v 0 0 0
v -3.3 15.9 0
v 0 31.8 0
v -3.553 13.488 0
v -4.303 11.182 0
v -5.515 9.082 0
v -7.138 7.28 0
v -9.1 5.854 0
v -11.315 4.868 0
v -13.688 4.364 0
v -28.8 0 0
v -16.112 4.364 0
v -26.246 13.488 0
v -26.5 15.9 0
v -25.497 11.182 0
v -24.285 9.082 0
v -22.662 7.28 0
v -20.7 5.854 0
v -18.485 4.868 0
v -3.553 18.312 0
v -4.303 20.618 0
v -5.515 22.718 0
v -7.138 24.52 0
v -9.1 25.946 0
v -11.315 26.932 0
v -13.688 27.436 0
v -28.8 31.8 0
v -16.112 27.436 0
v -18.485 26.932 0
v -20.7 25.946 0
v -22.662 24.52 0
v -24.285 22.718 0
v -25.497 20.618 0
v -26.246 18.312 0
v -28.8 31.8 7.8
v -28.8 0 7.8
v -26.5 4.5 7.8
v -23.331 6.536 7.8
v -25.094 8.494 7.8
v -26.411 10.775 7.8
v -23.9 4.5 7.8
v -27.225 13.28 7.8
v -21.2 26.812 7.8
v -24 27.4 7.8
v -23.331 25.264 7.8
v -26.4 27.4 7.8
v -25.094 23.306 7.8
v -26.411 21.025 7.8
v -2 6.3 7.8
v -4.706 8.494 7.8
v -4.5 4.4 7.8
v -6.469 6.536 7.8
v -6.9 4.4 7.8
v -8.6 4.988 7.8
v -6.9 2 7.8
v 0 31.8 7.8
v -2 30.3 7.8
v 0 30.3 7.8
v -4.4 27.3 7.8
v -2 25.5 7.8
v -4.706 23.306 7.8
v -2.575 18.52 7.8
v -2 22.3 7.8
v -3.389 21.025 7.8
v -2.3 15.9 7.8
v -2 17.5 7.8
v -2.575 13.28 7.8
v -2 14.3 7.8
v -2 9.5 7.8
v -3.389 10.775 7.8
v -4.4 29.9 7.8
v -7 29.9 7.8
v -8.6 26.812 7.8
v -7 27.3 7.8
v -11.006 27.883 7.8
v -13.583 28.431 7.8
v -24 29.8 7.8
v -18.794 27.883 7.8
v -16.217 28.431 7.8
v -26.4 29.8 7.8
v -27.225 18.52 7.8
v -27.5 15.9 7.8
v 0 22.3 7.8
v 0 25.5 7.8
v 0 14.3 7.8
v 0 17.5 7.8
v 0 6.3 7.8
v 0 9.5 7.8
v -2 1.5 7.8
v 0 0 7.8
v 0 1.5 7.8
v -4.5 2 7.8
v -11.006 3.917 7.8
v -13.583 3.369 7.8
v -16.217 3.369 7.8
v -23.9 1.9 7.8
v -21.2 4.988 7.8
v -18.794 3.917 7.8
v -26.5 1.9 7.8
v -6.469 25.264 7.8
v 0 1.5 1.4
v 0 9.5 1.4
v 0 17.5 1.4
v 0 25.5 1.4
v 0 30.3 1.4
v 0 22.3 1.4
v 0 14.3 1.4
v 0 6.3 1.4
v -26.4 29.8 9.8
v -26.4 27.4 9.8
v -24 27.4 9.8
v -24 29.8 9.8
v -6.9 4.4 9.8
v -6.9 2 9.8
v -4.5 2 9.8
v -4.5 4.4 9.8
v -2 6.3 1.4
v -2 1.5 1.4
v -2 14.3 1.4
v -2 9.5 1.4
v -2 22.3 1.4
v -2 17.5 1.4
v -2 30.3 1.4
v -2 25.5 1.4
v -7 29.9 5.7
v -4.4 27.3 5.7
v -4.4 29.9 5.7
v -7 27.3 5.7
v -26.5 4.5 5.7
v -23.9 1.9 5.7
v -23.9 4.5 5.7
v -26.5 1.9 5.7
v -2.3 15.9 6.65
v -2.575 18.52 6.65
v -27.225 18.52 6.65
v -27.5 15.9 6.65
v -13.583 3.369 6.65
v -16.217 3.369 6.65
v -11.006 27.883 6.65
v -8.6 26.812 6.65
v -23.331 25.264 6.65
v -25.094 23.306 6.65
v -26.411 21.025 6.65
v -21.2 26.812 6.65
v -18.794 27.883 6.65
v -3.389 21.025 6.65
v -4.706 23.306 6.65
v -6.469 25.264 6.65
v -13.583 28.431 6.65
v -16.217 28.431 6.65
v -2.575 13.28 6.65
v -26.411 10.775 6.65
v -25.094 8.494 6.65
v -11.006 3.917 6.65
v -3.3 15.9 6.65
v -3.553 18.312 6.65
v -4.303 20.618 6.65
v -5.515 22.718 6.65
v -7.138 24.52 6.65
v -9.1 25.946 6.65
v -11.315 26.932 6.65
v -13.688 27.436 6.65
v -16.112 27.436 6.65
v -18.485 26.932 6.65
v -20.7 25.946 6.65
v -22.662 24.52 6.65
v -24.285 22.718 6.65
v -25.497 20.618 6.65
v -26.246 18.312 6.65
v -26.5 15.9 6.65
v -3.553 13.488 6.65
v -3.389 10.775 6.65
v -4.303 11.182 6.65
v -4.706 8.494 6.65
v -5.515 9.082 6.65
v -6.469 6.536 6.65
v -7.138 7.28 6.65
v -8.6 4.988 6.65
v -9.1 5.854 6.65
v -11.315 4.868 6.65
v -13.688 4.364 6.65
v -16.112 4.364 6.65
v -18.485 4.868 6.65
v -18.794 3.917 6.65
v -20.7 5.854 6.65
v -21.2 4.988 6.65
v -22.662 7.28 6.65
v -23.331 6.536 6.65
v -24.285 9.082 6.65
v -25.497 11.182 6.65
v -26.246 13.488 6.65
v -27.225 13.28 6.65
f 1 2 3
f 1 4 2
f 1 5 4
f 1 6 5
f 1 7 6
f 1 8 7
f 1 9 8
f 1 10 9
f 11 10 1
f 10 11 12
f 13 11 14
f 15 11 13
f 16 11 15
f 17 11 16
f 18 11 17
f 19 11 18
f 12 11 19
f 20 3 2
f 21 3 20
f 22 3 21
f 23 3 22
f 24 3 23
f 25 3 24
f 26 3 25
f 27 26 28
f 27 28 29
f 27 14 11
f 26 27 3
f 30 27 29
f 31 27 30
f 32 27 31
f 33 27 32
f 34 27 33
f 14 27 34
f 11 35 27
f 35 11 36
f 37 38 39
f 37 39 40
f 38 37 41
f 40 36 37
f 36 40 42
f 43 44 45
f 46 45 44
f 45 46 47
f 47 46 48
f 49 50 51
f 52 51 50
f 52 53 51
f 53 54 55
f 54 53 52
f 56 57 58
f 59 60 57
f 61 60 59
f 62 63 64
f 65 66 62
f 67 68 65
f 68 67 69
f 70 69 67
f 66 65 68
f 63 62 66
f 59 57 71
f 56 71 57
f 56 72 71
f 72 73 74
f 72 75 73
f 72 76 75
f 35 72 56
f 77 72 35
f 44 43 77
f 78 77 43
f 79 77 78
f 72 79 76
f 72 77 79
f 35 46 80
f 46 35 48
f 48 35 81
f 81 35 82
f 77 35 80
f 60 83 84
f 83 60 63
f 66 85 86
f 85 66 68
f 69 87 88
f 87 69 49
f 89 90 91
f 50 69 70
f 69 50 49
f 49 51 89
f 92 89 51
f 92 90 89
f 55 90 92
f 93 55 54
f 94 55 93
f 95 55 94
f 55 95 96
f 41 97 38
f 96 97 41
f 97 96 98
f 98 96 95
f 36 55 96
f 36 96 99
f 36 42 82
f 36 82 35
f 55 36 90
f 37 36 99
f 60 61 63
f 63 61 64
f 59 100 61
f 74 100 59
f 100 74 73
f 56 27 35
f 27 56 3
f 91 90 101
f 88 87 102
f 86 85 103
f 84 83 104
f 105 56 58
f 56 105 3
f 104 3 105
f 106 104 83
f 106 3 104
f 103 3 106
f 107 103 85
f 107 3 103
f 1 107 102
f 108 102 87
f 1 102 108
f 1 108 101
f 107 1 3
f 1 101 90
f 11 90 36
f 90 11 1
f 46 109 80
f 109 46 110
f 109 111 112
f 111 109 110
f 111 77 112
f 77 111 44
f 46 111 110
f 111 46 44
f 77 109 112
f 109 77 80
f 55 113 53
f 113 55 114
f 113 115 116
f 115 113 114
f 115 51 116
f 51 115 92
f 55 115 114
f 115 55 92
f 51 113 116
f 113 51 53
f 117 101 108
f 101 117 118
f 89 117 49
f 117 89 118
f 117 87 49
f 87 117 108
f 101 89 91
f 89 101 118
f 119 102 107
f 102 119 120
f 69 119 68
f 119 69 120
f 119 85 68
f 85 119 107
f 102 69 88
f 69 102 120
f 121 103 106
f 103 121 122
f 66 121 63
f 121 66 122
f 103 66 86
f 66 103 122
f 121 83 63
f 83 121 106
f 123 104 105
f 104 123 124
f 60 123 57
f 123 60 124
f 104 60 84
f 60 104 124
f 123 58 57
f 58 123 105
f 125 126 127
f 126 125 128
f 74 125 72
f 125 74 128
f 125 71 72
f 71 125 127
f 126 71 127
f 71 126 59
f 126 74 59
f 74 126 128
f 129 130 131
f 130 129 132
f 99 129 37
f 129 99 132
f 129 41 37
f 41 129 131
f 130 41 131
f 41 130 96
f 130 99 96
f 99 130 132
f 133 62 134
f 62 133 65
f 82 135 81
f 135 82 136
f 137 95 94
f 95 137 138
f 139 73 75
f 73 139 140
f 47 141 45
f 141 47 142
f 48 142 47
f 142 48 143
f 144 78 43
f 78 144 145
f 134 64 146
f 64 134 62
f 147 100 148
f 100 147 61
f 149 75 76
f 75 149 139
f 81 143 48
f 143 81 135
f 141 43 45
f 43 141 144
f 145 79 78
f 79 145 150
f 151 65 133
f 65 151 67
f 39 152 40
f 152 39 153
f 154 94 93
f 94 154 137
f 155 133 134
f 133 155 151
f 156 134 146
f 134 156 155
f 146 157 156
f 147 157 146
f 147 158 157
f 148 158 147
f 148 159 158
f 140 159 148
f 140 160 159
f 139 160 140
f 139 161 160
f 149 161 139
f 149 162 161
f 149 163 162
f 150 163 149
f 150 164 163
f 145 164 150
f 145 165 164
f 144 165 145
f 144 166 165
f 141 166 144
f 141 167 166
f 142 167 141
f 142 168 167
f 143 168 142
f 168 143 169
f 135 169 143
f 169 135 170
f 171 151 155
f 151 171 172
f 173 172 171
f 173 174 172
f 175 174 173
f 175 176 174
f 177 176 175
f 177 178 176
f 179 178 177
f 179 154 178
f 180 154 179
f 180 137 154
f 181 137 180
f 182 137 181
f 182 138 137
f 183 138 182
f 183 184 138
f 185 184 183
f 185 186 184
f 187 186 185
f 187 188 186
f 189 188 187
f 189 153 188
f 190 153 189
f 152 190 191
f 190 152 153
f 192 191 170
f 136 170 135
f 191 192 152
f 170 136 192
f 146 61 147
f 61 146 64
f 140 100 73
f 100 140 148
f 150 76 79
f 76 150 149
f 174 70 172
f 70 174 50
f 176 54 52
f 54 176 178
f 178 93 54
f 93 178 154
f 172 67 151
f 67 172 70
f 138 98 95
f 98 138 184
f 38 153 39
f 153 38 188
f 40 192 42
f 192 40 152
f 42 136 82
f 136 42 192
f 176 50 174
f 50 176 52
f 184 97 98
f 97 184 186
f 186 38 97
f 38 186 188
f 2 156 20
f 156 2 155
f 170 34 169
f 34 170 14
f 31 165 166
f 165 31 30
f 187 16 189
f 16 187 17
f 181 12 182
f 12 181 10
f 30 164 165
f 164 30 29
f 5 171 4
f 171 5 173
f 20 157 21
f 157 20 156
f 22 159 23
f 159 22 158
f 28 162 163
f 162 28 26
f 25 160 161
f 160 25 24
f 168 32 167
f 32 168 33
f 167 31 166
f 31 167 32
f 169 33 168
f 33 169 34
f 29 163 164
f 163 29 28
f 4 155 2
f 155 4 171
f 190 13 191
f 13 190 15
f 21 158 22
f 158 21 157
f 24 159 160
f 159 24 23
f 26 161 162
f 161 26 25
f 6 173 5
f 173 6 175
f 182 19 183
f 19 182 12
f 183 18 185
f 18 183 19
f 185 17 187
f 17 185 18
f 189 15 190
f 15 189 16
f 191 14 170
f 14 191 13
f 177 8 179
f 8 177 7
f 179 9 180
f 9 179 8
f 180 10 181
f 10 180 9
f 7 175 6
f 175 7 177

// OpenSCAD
 
hcenter  = 14.9;
xcenter  = 15.9;

rotate([0,-90,0]) translate([0, 0, 0]) difference() {
    union() {
        cube([7.8, 31.8, 28.8]);
        translate([7.8, 27.4, 24]) cube([2, 2.4,2.4]);
        translate([7.8, 2, 4.5]) cube([2, 2.4,2.4]);
    }
    translate([1.4,1.5,0]) cube([13,4.8,2]);
    translate([1.4,9.5,0]) cube([13,4.8,2]);
    translate([1.4,17.5,0]) cube([13,4.8,2]);
    translate([1.4,25.5,0]) cube([13,4.8,2]);
    
    translate([5.7, 27.3, 4.4]) cube([2.1, 2.6,2.6]);
    translate([5.7, 1.9, 23.9]) cube([2.1, 2.6,2.6]);
    
    
    translate([7.8,xcenter,hcenter]) rotate([0,90,0]) cylinder(h=2.3, r=12.6, center=true);
    translate([0,xcenter,hcenter]) rotate([0,90,0]) cylinder(h=18, r=11.6, center=false);
}
